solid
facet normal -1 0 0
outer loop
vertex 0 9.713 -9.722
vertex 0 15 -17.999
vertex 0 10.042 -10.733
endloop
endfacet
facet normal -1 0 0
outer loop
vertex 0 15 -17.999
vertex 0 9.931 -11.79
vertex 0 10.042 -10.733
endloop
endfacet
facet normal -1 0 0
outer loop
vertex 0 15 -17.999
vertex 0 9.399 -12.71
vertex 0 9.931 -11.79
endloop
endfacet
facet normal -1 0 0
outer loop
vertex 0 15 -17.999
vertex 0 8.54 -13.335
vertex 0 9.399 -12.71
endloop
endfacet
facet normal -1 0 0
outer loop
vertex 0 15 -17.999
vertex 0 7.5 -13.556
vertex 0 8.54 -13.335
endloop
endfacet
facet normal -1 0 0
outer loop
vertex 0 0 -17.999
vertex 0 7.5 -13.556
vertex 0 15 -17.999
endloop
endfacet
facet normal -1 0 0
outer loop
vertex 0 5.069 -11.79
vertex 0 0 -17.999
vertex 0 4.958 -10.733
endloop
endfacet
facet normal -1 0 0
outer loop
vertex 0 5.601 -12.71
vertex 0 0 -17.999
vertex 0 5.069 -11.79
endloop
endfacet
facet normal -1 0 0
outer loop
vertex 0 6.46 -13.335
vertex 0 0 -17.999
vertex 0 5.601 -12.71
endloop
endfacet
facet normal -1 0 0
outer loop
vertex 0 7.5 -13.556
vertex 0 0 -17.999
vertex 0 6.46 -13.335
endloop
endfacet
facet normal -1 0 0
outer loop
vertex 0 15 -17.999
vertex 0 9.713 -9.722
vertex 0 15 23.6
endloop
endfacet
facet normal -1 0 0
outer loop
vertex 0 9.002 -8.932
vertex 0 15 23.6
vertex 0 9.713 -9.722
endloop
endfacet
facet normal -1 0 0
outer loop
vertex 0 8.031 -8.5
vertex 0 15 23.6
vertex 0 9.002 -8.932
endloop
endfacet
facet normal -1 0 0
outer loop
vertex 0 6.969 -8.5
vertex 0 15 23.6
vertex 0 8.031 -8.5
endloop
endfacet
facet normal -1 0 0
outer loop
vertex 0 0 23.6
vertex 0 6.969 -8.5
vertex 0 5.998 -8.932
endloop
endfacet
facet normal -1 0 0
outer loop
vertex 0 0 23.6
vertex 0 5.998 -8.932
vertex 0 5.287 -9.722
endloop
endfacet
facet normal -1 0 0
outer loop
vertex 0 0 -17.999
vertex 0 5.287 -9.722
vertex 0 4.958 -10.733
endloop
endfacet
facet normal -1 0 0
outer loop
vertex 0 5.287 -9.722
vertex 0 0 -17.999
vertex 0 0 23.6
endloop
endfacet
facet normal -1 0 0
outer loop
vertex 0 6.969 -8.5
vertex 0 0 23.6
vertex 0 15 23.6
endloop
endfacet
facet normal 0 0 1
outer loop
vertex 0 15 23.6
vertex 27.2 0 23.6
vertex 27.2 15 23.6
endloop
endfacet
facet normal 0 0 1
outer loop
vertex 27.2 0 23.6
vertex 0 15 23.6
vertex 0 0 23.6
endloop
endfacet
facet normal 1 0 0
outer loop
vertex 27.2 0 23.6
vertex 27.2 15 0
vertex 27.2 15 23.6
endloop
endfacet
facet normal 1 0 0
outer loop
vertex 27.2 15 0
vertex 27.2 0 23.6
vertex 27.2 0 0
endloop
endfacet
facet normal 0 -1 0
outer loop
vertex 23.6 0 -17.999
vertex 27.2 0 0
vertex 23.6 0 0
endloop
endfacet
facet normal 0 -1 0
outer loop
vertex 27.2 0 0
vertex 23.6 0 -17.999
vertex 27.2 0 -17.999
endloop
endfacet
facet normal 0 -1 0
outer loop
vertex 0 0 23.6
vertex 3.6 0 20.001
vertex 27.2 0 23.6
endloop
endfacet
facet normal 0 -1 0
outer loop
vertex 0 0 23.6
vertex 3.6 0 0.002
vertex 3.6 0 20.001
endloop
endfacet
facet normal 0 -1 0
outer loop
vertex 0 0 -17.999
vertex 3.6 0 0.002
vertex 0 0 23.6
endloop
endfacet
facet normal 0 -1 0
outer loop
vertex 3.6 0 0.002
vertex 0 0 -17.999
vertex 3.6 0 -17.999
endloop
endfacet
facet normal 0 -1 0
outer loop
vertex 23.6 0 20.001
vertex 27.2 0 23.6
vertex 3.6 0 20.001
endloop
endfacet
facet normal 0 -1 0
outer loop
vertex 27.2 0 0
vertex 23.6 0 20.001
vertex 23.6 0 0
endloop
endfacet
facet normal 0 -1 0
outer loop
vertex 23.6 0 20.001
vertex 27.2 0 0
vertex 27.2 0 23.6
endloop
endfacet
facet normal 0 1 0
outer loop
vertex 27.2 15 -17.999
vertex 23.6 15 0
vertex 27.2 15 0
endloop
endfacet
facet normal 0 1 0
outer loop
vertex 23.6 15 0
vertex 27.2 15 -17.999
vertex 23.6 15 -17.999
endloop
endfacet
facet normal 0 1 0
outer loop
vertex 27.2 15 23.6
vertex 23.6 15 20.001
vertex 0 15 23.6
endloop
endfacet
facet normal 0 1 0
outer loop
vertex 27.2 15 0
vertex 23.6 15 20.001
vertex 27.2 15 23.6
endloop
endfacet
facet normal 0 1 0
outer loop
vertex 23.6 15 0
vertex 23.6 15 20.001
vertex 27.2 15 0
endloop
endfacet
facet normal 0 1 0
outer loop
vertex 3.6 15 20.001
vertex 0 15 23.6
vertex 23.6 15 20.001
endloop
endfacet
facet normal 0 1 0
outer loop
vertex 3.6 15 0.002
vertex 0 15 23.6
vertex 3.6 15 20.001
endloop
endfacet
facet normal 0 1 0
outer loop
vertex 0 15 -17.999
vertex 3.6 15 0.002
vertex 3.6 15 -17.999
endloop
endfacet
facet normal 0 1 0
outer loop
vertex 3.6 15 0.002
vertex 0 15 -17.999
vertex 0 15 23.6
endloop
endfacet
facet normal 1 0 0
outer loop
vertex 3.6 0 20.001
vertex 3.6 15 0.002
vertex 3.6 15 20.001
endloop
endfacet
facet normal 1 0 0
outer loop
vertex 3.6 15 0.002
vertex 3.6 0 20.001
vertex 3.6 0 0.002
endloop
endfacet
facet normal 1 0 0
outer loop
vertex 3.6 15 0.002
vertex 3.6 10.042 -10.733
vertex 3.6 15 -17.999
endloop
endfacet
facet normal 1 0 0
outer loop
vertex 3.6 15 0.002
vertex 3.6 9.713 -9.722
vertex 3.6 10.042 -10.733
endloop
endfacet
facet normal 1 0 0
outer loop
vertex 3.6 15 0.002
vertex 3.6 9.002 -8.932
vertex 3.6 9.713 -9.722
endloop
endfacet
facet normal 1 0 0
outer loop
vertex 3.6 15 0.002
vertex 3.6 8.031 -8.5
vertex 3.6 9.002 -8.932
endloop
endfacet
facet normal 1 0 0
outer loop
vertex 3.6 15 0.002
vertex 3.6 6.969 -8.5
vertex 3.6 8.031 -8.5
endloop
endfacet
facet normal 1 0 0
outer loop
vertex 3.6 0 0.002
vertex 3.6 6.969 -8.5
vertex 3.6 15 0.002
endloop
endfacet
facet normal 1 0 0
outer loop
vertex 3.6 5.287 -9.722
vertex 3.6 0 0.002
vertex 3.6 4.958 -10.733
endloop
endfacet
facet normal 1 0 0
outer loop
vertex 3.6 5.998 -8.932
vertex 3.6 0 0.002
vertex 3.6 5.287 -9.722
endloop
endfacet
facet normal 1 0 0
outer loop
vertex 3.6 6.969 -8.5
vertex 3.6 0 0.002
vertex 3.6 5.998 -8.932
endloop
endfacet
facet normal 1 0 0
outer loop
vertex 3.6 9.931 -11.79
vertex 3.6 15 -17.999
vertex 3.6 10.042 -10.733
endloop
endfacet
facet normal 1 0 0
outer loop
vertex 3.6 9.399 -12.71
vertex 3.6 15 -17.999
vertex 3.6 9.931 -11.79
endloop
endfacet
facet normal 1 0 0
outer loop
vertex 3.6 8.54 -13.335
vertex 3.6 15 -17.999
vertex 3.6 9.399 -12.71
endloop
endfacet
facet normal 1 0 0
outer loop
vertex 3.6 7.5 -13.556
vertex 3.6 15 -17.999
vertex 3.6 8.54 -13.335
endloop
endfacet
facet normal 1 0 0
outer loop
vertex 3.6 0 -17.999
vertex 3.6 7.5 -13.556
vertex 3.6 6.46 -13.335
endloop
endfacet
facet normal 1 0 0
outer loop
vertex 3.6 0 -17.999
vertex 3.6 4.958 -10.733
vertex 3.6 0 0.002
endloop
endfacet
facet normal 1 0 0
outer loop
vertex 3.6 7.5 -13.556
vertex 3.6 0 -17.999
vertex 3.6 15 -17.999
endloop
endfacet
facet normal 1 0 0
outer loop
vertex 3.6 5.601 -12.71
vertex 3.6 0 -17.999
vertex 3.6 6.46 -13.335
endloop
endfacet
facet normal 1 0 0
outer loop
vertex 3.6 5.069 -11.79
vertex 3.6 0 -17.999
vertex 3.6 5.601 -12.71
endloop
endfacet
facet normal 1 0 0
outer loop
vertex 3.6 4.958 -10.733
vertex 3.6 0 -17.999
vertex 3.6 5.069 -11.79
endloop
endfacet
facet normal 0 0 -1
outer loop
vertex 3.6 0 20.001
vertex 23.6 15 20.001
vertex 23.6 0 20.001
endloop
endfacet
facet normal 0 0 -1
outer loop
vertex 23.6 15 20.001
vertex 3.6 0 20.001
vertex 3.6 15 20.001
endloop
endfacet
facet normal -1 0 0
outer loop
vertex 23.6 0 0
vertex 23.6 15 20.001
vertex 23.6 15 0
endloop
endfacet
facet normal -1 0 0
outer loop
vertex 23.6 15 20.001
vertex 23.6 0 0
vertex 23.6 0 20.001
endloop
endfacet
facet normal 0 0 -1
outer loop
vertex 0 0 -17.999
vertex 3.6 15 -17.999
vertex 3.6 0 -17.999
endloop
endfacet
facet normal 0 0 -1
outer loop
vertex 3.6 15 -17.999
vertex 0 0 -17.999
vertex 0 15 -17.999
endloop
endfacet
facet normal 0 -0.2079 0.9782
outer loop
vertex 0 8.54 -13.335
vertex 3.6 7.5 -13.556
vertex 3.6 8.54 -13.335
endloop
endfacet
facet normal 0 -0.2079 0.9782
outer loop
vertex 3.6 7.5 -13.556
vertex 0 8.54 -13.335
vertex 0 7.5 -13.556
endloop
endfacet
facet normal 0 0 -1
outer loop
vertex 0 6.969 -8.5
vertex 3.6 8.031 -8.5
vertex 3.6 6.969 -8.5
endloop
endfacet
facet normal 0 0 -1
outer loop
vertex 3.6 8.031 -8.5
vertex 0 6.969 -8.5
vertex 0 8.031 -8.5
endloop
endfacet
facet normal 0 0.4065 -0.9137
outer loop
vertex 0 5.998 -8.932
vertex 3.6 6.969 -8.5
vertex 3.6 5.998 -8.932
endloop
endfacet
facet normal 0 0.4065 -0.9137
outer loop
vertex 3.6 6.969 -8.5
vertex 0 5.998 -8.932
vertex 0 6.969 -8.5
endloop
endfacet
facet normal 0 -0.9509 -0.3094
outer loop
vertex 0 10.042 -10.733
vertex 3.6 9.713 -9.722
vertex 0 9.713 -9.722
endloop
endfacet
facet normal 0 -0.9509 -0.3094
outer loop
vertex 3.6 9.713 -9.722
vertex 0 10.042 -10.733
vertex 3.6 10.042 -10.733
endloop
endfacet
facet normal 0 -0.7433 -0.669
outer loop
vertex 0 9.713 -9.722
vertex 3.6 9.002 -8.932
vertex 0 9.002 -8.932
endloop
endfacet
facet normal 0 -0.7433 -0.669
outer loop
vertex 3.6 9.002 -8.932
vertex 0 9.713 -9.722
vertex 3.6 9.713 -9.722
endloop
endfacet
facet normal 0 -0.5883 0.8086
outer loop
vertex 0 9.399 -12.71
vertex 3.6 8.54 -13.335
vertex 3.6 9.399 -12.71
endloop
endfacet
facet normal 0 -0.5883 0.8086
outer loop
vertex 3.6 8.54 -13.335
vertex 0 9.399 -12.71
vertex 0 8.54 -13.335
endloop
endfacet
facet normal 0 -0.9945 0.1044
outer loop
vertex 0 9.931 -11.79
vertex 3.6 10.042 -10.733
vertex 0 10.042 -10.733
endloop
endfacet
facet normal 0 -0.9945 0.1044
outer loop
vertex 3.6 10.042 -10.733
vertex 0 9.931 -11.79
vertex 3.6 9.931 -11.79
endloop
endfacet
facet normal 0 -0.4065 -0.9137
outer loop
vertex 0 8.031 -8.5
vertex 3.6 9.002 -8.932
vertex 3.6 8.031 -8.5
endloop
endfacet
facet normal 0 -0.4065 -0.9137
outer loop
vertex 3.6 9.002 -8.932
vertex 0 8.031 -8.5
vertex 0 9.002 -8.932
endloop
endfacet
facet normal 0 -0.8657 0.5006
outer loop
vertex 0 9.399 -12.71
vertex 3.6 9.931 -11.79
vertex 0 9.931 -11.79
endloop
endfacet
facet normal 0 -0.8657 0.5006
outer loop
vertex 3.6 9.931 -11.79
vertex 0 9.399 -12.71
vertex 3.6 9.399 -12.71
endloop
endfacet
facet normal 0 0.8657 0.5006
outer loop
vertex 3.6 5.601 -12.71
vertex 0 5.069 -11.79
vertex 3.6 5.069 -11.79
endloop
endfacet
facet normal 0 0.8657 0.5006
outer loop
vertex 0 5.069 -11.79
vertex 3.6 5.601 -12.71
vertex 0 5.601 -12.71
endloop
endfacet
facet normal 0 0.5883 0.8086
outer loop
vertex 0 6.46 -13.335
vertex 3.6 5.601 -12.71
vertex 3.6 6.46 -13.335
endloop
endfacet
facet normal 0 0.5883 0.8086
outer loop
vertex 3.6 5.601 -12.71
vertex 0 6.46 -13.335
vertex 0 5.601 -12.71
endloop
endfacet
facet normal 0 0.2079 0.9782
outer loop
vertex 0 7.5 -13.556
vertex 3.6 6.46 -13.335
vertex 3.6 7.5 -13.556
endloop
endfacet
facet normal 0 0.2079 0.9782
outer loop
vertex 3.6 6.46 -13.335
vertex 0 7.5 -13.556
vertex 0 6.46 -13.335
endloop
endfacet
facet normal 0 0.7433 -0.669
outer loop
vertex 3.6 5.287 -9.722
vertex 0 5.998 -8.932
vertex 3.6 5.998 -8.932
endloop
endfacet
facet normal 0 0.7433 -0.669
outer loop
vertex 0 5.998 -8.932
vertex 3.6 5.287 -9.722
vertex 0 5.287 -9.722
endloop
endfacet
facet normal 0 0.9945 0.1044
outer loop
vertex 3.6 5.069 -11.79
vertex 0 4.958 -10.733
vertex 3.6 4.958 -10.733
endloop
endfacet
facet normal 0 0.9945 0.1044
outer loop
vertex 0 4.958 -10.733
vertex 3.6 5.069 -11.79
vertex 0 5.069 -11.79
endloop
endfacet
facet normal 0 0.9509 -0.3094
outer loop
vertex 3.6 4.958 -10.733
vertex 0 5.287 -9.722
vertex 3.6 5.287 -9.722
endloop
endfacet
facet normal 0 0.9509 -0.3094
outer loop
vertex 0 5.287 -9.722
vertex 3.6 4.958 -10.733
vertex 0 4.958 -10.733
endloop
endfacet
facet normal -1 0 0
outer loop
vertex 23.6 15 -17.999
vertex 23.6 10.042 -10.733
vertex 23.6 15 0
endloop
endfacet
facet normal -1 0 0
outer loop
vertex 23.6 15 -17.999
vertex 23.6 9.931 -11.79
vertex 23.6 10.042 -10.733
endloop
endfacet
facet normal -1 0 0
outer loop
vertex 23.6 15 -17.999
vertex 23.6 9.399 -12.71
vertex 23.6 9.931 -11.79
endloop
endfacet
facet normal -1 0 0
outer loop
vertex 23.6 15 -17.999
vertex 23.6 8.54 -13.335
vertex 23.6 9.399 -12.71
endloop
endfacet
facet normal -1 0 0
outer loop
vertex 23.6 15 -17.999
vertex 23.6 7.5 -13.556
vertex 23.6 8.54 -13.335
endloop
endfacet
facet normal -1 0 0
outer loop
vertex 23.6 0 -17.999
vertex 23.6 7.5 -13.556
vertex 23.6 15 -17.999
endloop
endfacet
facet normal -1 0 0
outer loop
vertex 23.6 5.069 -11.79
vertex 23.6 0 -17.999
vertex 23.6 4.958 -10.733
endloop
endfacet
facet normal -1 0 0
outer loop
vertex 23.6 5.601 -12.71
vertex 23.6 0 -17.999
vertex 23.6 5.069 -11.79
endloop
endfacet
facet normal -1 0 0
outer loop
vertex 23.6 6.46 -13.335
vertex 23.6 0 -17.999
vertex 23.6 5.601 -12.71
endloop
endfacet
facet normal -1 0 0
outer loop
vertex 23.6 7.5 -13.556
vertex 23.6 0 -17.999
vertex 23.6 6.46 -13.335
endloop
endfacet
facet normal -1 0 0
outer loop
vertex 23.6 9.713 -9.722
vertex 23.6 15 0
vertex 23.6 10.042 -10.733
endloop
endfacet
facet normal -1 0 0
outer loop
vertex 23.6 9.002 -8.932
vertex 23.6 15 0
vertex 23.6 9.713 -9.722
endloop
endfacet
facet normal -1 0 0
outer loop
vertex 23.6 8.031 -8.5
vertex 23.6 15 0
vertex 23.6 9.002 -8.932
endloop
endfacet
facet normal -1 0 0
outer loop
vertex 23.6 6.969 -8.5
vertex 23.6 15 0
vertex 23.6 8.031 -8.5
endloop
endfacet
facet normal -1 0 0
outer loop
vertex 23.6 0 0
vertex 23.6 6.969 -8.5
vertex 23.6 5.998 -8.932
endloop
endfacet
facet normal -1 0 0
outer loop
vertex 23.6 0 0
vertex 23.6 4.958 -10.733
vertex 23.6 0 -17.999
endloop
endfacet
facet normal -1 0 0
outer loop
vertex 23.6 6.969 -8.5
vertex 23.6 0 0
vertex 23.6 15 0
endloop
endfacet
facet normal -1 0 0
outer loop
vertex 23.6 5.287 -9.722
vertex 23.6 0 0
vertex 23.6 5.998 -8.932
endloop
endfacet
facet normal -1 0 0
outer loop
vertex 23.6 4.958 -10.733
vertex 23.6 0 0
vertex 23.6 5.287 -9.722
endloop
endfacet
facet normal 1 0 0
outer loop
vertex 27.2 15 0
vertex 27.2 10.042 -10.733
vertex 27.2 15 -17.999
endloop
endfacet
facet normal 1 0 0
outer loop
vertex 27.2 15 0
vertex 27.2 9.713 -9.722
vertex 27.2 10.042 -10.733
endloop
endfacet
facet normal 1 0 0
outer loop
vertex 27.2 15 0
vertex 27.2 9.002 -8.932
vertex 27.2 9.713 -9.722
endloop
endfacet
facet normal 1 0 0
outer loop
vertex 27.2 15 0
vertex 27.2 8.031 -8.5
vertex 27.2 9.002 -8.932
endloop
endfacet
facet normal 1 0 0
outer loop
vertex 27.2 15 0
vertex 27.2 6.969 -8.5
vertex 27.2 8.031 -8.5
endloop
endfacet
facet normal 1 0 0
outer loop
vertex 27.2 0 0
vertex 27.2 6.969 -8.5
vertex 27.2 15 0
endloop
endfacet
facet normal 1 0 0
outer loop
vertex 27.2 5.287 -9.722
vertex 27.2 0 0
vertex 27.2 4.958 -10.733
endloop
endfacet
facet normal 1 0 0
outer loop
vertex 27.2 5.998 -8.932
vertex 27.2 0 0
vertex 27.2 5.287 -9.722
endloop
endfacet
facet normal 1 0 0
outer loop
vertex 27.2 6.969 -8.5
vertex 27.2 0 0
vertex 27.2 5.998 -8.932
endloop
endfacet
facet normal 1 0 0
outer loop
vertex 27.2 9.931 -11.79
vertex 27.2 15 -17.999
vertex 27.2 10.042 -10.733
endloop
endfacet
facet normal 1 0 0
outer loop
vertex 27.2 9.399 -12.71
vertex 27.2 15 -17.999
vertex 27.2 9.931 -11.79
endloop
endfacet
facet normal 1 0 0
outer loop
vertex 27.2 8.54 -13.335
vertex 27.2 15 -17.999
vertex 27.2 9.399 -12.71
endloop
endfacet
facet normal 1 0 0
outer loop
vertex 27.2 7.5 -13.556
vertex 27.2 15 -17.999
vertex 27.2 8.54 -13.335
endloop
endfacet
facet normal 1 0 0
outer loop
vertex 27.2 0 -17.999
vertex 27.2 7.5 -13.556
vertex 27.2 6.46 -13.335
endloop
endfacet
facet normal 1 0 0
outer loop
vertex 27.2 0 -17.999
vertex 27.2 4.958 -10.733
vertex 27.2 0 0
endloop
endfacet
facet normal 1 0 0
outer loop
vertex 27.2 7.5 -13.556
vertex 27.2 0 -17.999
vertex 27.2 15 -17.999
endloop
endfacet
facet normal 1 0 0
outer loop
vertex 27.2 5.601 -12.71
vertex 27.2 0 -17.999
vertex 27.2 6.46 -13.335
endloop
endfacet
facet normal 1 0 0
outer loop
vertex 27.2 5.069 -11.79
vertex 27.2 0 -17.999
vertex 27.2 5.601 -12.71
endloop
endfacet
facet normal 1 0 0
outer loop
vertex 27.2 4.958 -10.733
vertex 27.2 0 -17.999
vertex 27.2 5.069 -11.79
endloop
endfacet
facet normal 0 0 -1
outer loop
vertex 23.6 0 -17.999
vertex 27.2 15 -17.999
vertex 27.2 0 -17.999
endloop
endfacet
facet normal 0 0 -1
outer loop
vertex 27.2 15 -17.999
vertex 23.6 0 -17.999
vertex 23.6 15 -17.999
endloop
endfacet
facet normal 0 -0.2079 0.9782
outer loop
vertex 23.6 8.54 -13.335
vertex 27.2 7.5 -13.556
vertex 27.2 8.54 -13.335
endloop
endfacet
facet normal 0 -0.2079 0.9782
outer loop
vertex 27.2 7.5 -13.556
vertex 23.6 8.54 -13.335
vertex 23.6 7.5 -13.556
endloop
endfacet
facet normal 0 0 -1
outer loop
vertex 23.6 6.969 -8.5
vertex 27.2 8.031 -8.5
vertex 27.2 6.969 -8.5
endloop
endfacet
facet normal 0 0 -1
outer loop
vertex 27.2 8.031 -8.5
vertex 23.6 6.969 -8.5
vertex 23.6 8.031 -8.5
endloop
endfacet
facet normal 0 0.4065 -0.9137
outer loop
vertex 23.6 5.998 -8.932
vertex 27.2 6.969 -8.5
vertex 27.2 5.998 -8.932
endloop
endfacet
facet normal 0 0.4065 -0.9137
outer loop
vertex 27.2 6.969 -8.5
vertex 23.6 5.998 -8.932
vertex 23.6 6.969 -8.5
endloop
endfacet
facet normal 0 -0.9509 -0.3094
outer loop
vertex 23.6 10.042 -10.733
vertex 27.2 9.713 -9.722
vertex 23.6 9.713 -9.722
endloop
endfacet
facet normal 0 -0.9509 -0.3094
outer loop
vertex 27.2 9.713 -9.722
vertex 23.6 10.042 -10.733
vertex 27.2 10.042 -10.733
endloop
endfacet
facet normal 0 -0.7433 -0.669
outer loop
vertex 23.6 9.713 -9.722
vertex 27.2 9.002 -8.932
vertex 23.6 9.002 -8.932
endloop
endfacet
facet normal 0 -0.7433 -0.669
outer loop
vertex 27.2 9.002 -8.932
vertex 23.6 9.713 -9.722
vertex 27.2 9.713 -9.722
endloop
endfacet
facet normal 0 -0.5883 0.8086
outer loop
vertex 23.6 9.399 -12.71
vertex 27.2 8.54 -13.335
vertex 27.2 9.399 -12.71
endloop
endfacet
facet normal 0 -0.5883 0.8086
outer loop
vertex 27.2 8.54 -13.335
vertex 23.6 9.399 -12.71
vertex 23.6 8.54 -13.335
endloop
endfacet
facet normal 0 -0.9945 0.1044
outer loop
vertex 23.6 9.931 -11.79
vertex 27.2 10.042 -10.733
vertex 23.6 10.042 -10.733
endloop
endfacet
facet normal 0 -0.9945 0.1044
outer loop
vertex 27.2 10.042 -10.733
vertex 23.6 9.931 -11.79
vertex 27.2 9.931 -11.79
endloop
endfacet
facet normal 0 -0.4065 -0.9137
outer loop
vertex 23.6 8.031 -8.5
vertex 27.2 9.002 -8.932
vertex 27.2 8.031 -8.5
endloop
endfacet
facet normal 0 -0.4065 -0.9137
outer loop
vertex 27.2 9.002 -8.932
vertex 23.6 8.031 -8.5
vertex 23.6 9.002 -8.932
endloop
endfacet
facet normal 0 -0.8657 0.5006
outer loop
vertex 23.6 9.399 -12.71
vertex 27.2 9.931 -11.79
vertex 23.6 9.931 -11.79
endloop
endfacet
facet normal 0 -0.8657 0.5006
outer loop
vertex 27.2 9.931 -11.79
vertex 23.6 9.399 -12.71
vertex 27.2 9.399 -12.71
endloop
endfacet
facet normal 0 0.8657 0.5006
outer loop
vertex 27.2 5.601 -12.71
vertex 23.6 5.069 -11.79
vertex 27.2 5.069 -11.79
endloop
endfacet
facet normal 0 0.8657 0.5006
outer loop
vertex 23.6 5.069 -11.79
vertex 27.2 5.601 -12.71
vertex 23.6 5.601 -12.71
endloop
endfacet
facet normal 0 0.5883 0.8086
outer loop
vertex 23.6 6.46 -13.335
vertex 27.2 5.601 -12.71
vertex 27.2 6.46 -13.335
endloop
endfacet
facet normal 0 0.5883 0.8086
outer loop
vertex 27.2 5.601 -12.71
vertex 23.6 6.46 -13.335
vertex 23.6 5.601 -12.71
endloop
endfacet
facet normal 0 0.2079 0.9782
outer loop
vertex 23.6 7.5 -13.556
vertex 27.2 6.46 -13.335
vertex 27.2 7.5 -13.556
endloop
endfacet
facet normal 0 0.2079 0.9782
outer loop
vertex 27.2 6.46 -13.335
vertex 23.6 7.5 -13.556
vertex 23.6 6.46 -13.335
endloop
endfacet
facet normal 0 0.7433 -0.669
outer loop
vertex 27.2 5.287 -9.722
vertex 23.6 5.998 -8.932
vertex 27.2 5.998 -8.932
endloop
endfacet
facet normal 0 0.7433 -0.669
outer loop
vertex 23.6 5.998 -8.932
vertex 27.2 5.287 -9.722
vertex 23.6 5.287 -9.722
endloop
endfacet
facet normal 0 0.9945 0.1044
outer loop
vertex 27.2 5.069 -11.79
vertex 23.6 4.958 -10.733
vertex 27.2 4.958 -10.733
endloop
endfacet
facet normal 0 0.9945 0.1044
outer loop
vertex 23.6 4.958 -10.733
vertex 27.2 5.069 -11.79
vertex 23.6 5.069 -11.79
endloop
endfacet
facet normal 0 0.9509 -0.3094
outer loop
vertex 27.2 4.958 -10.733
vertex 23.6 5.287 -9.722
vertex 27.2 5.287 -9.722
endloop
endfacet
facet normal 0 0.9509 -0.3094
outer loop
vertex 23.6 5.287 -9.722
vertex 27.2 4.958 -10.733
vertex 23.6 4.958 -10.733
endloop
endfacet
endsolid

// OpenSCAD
// file: lib/hole.scad
module cylinder_outer(h,d=undef,d1=undef,d2=undef,fn=15) {
	fudge = cos(180/fn);
	cylinder(h=h,d=d/fudge,d1=d1/fudge,d2=d2/fudge,$fn=fn);
}

module hole(d, height, countersink=0, extra_above=false) {
	height = height - countersink;
	translate([0, 0, -(height+countersink)]) {
		translate([0, 0, height+0.001]) cylinder_outer(d1=d, d2=d*1.5, h=countersink);
		if (extra_above) {
			translate([0, 0, height+0.001]) cylinder_outer(d1=d, d2=d*2, h=countersink*3/2);
		}
		if (height > 0)
			translate([0, 0, -2]) cylinder_outer(d=d, h=height+2.1);
	}
}
// main file
use <lib/hole.scad>;

w = 20;
h = 20;
l = 15;
thickness = 3.6;
hanger = 18;
d = 3.5;
both_sides = true;

difference() {
	cube([w+thickness*2, l, h+thickness]);
	translate([thickness,-0.001, -0.001]) cube([w, l+0.002, h+0.002]);
}

bottom();

if (both_sides) {
	translate([w+thickness, 0, 0]) bottom();
}

module bottom() {
	difference() {
		translate([0, 0, -hanger+0.001]) cube([thickness, l, hanger+0.001]);
		translate([0, l/2, -(hanger-d*2)]) rotate([0, 90, 0]) translate([0, 0, -0.001]) cylinder_outer(d=5, h=thickness+0.002);
	}
}
